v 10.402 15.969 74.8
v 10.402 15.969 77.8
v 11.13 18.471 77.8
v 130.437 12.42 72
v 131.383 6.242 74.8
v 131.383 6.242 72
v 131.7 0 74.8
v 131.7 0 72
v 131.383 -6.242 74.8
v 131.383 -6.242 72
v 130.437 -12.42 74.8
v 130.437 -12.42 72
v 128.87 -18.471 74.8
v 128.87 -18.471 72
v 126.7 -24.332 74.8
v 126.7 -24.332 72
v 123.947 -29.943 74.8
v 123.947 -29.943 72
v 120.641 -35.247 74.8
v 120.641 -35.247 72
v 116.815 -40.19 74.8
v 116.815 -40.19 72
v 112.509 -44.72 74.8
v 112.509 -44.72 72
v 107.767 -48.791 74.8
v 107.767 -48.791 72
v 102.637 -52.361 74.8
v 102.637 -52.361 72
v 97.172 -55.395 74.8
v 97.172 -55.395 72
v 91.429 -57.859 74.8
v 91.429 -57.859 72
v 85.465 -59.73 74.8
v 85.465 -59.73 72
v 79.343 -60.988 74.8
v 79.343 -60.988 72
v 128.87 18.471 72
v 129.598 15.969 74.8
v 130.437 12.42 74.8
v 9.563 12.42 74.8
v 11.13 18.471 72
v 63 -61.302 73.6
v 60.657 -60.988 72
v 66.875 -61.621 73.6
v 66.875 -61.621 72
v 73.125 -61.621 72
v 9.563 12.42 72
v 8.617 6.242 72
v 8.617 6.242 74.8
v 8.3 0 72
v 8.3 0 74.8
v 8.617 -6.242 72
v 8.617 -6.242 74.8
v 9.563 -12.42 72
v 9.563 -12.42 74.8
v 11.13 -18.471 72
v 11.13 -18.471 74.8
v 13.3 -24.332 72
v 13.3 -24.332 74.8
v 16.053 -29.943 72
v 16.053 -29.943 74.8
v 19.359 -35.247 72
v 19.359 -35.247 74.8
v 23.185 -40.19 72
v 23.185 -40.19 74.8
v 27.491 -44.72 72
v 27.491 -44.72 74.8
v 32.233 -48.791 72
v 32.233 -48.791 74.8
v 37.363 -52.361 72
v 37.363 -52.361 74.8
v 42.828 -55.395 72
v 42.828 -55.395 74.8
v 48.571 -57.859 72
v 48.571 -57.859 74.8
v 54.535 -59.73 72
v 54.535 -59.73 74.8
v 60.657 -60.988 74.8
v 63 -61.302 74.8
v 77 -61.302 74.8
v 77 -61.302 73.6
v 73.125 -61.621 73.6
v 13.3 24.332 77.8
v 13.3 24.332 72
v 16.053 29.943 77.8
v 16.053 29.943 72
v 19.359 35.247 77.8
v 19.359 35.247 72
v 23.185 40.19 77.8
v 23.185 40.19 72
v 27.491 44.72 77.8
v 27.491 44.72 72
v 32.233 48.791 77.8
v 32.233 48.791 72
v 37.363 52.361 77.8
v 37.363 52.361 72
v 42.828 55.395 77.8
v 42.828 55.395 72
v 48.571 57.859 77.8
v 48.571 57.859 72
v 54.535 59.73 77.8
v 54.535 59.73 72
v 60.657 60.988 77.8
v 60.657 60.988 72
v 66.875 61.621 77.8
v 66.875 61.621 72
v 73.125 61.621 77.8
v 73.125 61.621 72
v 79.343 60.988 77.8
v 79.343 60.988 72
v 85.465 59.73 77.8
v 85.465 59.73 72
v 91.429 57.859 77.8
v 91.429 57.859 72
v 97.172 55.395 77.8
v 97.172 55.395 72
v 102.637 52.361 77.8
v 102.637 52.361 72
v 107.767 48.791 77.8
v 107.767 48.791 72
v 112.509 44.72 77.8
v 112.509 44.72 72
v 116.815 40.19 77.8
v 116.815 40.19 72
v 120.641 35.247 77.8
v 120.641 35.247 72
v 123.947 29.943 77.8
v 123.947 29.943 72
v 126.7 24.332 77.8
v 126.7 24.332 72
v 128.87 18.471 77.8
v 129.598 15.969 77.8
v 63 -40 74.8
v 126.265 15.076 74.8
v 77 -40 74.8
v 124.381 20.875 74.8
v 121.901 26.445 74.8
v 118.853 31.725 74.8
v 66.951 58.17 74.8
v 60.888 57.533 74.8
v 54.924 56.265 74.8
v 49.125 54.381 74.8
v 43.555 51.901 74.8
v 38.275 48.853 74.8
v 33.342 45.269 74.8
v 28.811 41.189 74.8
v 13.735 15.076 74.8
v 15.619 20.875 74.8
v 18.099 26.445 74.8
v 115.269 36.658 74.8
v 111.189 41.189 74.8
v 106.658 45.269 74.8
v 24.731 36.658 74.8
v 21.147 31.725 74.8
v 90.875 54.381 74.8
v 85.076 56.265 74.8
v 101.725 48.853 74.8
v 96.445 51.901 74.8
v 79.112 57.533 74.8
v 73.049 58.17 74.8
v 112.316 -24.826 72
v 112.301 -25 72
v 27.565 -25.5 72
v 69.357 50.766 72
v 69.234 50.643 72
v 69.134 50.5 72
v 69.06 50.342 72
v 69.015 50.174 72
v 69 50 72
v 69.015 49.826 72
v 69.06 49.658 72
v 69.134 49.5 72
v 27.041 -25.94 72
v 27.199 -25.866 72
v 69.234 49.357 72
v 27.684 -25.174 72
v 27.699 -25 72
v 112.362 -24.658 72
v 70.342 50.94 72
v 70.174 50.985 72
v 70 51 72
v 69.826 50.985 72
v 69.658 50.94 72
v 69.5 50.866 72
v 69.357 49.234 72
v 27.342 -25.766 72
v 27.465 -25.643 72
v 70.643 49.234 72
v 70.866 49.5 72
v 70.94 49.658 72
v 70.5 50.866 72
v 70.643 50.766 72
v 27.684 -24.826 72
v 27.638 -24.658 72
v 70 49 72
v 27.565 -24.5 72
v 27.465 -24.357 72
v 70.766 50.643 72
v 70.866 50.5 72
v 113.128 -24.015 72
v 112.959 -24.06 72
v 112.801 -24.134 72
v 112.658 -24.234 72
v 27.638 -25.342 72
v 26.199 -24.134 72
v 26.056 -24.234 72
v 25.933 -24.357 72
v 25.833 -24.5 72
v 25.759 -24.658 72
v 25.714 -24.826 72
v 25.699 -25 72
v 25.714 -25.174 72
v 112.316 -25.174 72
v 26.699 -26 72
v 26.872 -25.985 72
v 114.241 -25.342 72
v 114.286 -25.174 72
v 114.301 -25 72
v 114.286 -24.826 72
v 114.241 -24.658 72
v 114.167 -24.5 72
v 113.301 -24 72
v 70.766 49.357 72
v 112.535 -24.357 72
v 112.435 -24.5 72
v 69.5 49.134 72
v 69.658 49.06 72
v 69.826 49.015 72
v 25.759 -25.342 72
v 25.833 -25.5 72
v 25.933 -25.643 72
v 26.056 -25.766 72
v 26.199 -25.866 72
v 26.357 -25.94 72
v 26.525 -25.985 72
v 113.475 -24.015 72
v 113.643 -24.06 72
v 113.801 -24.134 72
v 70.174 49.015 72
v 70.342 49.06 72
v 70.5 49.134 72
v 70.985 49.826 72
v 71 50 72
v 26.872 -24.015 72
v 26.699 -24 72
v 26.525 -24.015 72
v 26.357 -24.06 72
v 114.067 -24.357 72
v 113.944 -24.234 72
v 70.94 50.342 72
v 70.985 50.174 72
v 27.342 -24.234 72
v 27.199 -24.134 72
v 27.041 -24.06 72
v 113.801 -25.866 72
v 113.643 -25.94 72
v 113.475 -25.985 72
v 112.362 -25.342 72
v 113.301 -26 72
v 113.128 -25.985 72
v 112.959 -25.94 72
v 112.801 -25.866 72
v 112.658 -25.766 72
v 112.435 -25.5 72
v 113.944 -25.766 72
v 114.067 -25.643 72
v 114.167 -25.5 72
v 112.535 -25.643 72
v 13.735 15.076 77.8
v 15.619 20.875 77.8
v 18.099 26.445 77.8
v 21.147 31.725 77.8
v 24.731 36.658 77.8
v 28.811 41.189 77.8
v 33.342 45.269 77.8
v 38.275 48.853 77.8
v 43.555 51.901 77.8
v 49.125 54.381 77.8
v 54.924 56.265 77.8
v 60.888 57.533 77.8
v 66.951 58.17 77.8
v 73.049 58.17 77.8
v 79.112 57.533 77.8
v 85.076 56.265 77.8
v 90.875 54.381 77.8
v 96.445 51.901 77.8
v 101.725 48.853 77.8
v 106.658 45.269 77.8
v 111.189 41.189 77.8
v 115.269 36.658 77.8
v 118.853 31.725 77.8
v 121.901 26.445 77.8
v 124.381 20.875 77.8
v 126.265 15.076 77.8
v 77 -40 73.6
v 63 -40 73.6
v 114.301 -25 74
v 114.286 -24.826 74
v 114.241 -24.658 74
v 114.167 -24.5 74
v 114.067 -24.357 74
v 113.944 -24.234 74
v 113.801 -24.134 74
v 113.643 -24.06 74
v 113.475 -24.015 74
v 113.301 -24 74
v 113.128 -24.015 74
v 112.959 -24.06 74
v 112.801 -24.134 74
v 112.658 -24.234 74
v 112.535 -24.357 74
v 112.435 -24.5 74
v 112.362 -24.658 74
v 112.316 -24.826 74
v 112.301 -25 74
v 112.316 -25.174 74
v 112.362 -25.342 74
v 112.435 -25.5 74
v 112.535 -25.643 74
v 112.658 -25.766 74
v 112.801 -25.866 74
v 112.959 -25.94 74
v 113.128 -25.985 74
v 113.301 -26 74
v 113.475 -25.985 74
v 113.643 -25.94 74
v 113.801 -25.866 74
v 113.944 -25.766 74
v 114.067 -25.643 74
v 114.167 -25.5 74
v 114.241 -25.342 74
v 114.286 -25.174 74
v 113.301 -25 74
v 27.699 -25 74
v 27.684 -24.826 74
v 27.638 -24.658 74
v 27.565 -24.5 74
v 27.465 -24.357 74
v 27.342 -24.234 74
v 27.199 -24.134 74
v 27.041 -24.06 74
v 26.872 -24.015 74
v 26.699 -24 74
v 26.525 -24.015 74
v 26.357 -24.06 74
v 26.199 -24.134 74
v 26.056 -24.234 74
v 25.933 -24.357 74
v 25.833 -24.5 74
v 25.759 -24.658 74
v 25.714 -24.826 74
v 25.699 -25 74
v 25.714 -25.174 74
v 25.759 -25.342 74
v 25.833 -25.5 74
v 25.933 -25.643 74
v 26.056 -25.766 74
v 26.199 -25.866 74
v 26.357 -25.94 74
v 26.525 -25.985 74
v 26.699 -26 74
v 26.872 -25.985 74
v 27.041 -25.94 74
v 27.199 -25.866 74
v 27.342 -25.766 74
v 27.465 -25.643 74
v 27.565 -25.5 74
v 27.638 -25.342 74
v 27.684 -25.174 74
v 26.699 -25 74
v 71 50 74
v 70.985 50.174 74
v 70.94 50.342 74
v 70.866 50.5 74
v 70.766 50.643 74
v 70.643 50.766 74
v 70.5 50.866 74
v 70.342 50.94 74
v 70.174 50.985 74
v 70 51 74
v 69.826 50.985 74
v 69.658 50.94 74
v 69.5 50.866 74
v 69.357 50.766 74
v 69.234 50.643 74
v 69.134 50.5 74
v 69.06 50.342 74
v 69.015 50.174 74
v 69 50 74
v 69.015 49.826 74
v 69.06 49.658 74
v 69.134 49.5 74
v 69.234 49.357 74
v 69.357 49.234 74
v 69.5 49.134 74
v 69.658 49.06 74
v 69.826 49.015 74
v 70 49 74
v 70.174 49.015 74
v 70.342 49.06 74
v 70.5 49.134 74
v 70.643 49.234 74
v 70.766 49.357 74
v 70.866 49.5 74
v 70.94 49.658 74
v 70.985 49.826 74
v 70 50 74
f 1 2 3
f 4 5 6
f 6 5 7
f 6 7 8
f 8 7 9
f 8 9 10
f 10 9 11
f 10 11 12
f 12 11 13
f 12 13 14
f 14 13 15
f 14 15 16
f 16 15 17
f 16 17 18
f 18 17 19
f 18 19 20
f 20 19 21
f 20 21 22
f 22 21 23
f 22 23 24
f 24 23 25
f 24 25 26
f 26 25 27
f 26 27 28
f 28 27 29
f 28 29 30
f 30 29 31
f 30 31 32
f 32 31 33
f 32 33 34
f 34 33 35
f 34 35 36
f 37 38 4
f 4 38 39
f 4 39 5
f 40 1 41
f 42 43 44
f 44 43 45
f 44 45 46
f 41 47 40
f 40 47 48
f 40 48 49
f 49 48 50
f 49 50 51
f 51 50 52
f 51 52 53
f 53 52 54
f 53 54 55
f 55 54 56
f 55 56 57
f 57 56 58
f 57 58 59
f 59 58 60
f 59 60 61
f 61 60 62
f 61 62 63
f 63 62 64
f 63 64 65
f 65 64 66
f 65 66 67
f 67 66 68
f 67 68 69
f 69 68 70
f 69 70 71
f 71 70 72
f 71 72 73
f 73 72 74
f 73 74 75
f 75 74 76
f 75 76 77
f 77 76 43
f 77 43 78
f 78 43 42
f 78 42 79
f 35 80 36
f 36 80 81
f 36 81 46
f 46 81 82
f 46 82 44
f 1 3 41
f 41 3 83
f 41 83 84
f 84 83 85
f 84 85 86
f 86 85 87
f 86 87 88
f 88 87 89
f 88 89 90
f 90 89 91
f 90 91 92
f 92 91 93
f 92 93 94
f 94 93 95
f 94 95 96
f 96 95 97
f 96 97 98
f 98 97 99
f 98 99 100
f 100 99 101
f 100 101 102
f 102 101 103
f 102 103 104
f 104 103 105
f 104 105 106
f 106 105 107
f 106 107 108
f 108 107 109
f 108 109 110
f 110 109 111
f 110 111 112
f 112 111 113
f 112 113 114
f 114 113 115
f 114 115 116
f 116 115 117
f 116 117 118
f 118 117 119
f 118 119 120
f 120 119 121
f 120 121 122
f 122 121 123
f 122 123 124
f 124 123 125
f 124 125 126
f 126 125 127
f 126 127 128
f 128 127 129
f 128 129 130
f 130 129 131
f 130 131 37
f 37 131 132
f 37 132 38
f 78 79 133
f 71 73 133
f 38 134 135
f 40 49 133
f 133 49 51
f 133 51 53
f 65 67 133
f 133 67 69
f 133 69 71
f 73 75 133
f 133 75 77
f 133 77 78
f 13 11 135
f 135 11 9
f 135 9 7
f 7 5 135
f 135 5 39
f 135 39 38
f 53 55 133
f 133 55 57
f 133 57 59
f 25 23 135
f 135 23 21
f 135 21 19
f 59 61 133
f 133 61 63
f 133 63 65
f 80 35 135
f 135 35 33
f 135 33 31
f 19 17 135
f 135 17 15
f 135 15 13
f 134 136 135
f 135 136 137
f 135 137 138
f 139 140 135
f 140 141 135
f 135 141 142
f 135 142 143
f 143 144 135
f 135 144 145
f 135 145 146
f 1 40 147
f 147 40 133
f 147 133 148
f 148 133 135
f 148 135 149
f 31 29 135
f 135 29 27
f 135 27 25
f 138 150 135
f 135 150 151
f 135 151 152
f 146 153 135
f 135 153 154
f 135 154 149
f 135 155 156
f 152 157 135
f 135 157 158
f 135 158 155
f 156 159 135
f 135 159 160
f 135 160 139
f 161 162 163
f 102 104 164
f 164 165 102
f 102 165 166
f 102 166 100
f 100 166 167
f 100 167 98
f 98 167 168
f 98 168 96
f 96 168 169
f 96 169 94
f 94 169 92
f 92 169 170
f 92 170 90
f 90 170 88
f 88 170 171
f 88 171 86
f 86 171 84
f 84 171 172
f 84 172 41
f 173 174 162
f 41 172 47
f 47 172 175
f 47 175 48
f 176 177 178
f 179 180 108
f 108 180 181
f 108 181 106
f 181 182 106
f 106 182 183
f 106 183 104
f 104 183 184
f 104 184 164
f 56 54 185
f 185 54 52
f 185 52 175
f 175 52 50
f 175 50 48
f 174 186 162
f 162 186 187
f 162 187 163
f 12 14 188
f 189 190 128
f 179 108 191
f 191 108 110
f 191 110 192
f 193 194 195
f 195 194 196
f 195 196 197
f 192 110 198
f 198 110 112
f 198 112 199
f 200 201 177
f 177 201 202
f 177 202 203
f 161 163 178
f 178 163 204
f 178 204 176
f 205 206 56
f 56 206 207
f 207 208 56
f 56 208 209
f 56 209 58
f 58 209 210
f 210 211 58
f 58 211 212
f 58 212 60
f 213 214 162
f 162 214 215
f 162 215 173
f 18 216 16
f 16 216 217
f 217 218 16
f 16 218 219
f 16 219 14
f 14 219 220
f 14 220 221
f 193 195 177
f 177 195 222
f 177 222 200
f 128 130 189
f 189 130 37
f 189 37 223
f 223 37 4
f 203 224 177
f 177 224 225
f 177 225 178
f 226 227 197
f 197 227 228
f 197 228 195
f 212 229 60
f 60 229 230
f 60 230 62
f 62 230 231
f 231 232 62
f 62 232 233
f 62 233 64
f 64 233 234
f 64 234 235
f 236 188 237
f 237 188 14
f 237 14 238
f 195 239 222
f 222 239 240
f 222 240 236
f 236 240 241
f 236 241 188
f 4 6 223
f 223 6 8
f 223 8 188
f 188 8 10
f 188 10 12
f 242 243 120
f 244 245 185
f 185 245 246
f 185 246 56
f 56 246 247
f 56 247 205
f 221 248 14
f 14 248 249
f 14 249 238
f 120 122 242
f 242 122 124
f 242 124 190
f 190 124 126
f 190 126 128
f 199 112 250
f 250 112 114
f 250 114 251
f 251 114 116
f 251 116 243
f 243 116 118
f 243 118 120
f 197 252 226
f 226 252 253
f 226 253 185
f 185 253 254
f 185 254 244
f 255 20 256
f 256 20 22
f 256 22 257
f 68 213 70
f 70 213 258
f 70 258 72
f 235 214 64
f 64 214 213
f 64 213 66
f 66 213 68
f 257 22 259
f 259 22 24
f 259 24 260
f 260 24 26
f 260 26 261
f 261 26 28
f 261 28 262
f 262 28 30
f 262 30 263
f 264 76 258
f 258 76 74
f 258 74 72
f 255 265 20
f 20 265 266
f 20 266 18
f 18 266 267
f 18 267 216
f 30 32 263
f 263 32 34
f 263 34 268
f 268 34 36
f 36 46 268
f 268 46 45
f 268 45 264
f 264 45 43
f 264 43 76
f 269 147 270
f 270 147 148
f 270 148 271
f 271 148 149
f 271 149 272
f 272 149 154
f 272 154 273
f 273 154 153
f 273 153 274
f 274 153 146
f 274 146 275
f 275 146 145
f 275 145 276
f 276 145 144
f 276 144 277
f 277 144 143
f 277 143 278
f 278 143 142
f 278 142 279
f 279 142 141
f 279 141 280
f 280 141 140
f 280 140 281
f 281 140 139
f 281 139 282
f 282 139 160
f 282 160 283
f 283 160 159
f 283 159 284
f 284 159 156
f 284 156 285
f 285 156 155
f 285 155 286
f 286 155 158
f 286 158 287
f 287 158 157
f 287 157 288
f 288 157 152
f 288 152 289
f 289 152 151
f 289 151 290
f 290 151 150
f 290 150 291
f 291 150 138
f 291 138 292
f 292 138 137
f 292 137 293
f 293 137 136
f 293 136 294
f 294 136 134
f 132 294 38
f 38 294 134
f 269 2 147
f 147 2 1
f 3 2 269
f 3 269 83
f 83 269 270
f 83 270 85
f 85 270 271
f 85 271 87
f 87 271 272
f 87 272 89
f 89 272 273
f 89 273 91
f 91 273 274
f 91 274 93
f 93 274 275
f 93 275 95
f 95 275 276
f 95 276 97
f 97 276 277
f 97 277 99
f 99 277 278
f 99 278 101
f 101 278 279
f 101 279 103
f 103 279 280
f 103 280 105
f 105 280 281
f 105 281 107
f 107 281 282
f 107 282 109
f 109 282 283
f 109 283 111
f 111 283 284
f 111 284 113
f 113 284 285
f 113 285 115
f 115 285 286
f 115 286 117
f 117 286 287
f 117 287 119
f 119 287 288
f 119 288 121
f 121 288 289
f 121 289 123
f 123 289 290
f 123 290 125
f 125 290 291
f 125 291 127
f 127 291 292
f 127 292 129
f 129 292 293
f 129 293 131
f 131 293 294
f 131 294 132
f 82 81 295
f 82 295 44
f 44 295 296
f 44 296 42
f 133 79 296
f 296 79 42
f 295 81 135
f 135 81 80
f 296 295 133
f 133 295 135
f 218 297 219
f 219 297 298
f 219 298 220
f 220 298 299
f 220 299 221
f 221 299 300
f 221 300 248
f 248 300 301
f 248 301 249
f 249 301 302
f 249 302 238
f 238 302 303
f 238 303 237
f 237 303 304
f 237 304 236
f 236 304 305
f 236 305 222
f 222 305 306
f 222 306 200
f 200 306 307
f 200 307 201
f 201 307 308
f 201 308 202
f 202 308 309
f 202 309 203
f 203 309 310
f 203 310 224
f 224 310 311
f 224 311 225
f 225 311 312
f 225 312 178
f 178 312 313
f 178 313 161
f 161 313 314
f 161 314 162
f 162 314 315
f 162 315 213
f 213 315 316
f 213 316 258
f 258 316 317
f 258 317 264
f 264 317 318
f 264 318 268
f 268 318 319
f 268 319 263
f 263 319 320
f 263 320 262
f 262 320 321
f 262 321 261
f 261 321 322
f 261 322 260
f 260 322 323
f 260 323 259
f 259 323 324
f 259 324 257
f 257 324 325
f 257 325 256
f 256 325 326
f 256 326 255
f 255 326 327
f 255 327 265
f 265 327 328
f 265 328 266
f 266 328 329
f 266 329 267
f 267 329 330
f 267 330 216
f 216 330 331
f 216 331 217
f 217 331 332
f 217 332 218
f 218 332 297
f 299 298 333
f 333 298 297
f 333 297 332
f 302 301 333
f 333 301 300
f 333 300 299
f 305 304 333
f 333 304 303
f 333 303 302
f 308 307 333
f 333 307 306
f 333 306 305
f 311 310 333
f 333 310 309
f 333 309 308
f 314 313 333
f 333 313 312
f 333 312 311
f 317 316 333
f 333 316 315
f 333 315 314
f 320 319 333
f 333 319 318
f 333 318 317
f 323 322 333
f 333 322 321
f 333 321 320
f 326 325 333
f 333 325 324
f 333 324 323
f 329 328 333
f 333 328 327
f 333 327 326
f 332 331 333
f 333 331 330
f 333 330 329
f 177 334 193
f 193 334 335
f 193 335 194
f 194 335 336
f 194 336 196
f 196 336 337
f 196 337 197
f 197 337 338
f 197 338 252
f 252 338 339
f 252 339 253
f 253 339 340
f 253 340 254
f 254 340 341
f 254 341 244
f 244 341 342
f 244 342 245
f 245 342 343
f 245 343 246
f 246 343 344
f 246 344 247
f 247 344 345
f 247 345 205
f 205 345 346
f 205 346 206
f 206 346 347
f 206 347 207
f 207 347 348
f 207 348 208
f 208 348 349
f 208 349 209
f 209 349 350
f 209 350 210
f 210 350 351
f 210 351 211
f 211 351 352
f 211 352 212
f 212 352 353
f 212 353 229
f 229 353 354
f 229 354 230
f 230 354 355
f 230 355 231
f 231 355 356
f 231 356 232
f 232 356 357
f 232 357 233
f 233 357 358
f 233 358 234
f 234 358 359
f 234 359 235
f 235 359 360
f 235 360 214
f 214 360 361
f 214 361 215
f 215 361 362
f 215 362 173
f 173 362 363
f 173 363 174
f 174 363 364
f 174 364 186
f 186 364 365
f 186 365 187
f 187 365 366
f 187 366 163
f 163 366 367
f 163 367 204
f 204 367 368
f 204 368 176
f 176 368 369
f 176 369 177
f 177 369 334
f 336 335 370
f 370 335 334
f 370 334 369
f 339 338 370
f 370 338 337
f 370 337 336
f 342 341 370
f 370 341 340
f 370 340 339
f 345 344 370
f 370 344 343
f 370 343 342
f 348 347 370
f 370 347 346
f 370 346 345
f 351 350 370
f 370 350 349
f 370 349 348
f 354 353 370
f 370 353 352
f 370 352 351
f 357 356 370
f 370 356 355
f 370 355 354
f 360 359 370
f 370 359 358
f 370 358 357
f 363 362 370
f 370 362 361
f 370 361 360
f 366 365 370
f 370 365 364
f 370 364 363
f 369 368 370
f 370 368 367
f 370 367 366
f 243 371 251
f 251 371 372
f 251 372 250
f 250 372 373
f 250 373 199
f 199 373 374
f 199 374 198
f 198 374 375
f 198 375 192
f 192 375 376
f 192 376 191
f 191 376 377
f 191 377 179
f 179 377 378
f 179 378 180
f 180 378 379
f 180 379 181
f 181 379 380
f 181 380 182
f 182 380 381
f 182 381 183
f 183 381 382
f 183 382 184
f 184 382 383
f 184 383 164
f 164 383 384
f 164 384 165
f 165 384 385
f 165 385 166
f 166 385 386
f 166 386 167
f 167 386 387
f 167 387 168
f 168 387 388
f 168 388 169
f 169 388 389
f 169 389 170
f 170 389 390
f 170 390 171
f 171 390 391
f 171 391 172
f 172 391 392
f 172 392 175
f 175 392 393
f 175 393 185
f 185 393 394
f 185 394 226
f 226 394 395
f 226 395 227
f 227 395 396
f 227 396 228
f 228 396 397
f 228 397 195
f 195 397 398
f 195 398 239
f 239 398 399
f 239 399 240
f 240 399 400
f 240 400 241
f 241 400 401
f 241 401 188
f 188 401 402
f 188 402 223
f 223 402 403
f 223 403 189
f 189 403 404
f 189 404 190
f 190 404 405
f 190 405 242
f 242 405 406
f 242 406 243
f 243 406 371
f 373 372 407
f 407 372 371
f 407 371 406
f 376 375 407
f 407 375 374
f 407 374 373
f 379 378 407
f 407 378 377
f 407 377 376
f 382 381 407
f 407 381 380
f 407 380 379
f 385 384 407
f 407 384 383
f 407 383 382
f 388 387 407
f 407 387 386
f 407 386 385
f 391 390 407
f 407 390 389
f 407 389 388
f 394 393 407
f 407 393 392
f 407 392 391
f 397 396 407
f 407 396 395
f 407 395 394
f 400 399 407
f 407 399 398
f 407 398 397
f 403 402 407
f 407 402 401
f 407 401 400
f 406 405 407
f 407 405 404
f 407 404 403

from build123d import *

# Parameters (mm, degrees)
SKETCH1_R                = 61.7
SEAT_DISC_DEPTH          = 2.8
REAR_STOP_ARC_DEPTH      = 3
SKETCH3_W                = 14
SKETCH3_H                = 23
FRONT_DRAIN_GROOVE_DEPTH = 0.85
SKETCH4_R                = 1
PIN_HOLES_DEPTH          = 1.25


with BuildPart() as part:
    # Sketch1 → Seat_disc (new body)
    with BuildSketch(Plane.XY.offset(72)):
        with Locations((70, 0)):
            Circle(SKETCH1_R)
    extrude(amount=SEAT_DISC_DEPTH)

    # Sketch2 → Rear_stop_arc (add)
    with BuildSketch(Plane.XY.offset(74.8)):
        with BuildLine():
            Line((126.265179381, 15.076209377), (129.597623482, 15.969135083))
            ThreePointArc((129.597623482, 15.969135083), (70, 61.7), (10.402376518, 15.969135083))
            Line((10.402376518, 15.969135083), (13.734820619, 15.076209377))
            ThreePointArc((13.734820619, 15.076209377), (70, 58.25), (126.265179381, 15.076209377))
        make_face()
    extrude(amount=REAR_STOP_ARC_DEPTH)

    # Sketch3 → Front_drain_groove (cut, symmetric)
    with BuildSketch(Plane.XY.offset(74.45)):
        with Locations((70, -51.5)):
            Rectangle(SKETCH3_W, SKETCH3_H)
    extrude(amount=FRONT_DRAIN_GROOVE_DEPTH, both=True, mode=Mode.SUBTRACT)

    # Sketch4 → Pin_holes (cut, symmetric)
    with BuildSketch(Plane.XY.offset(72.75)):
        with Locations((70, 50)):
            Circle(SKETCH4_R)
        with Locations((26.698729811, -25)):
            Circle(SKETCH4_R)
        with Locations((113.301270189, -25)):
            Circle(SKETCH4_R)
    extrude(amount=PIN_HOLES_DEPTH, both=True, mode=Mode.SUBTRACT)


solid = part.part
